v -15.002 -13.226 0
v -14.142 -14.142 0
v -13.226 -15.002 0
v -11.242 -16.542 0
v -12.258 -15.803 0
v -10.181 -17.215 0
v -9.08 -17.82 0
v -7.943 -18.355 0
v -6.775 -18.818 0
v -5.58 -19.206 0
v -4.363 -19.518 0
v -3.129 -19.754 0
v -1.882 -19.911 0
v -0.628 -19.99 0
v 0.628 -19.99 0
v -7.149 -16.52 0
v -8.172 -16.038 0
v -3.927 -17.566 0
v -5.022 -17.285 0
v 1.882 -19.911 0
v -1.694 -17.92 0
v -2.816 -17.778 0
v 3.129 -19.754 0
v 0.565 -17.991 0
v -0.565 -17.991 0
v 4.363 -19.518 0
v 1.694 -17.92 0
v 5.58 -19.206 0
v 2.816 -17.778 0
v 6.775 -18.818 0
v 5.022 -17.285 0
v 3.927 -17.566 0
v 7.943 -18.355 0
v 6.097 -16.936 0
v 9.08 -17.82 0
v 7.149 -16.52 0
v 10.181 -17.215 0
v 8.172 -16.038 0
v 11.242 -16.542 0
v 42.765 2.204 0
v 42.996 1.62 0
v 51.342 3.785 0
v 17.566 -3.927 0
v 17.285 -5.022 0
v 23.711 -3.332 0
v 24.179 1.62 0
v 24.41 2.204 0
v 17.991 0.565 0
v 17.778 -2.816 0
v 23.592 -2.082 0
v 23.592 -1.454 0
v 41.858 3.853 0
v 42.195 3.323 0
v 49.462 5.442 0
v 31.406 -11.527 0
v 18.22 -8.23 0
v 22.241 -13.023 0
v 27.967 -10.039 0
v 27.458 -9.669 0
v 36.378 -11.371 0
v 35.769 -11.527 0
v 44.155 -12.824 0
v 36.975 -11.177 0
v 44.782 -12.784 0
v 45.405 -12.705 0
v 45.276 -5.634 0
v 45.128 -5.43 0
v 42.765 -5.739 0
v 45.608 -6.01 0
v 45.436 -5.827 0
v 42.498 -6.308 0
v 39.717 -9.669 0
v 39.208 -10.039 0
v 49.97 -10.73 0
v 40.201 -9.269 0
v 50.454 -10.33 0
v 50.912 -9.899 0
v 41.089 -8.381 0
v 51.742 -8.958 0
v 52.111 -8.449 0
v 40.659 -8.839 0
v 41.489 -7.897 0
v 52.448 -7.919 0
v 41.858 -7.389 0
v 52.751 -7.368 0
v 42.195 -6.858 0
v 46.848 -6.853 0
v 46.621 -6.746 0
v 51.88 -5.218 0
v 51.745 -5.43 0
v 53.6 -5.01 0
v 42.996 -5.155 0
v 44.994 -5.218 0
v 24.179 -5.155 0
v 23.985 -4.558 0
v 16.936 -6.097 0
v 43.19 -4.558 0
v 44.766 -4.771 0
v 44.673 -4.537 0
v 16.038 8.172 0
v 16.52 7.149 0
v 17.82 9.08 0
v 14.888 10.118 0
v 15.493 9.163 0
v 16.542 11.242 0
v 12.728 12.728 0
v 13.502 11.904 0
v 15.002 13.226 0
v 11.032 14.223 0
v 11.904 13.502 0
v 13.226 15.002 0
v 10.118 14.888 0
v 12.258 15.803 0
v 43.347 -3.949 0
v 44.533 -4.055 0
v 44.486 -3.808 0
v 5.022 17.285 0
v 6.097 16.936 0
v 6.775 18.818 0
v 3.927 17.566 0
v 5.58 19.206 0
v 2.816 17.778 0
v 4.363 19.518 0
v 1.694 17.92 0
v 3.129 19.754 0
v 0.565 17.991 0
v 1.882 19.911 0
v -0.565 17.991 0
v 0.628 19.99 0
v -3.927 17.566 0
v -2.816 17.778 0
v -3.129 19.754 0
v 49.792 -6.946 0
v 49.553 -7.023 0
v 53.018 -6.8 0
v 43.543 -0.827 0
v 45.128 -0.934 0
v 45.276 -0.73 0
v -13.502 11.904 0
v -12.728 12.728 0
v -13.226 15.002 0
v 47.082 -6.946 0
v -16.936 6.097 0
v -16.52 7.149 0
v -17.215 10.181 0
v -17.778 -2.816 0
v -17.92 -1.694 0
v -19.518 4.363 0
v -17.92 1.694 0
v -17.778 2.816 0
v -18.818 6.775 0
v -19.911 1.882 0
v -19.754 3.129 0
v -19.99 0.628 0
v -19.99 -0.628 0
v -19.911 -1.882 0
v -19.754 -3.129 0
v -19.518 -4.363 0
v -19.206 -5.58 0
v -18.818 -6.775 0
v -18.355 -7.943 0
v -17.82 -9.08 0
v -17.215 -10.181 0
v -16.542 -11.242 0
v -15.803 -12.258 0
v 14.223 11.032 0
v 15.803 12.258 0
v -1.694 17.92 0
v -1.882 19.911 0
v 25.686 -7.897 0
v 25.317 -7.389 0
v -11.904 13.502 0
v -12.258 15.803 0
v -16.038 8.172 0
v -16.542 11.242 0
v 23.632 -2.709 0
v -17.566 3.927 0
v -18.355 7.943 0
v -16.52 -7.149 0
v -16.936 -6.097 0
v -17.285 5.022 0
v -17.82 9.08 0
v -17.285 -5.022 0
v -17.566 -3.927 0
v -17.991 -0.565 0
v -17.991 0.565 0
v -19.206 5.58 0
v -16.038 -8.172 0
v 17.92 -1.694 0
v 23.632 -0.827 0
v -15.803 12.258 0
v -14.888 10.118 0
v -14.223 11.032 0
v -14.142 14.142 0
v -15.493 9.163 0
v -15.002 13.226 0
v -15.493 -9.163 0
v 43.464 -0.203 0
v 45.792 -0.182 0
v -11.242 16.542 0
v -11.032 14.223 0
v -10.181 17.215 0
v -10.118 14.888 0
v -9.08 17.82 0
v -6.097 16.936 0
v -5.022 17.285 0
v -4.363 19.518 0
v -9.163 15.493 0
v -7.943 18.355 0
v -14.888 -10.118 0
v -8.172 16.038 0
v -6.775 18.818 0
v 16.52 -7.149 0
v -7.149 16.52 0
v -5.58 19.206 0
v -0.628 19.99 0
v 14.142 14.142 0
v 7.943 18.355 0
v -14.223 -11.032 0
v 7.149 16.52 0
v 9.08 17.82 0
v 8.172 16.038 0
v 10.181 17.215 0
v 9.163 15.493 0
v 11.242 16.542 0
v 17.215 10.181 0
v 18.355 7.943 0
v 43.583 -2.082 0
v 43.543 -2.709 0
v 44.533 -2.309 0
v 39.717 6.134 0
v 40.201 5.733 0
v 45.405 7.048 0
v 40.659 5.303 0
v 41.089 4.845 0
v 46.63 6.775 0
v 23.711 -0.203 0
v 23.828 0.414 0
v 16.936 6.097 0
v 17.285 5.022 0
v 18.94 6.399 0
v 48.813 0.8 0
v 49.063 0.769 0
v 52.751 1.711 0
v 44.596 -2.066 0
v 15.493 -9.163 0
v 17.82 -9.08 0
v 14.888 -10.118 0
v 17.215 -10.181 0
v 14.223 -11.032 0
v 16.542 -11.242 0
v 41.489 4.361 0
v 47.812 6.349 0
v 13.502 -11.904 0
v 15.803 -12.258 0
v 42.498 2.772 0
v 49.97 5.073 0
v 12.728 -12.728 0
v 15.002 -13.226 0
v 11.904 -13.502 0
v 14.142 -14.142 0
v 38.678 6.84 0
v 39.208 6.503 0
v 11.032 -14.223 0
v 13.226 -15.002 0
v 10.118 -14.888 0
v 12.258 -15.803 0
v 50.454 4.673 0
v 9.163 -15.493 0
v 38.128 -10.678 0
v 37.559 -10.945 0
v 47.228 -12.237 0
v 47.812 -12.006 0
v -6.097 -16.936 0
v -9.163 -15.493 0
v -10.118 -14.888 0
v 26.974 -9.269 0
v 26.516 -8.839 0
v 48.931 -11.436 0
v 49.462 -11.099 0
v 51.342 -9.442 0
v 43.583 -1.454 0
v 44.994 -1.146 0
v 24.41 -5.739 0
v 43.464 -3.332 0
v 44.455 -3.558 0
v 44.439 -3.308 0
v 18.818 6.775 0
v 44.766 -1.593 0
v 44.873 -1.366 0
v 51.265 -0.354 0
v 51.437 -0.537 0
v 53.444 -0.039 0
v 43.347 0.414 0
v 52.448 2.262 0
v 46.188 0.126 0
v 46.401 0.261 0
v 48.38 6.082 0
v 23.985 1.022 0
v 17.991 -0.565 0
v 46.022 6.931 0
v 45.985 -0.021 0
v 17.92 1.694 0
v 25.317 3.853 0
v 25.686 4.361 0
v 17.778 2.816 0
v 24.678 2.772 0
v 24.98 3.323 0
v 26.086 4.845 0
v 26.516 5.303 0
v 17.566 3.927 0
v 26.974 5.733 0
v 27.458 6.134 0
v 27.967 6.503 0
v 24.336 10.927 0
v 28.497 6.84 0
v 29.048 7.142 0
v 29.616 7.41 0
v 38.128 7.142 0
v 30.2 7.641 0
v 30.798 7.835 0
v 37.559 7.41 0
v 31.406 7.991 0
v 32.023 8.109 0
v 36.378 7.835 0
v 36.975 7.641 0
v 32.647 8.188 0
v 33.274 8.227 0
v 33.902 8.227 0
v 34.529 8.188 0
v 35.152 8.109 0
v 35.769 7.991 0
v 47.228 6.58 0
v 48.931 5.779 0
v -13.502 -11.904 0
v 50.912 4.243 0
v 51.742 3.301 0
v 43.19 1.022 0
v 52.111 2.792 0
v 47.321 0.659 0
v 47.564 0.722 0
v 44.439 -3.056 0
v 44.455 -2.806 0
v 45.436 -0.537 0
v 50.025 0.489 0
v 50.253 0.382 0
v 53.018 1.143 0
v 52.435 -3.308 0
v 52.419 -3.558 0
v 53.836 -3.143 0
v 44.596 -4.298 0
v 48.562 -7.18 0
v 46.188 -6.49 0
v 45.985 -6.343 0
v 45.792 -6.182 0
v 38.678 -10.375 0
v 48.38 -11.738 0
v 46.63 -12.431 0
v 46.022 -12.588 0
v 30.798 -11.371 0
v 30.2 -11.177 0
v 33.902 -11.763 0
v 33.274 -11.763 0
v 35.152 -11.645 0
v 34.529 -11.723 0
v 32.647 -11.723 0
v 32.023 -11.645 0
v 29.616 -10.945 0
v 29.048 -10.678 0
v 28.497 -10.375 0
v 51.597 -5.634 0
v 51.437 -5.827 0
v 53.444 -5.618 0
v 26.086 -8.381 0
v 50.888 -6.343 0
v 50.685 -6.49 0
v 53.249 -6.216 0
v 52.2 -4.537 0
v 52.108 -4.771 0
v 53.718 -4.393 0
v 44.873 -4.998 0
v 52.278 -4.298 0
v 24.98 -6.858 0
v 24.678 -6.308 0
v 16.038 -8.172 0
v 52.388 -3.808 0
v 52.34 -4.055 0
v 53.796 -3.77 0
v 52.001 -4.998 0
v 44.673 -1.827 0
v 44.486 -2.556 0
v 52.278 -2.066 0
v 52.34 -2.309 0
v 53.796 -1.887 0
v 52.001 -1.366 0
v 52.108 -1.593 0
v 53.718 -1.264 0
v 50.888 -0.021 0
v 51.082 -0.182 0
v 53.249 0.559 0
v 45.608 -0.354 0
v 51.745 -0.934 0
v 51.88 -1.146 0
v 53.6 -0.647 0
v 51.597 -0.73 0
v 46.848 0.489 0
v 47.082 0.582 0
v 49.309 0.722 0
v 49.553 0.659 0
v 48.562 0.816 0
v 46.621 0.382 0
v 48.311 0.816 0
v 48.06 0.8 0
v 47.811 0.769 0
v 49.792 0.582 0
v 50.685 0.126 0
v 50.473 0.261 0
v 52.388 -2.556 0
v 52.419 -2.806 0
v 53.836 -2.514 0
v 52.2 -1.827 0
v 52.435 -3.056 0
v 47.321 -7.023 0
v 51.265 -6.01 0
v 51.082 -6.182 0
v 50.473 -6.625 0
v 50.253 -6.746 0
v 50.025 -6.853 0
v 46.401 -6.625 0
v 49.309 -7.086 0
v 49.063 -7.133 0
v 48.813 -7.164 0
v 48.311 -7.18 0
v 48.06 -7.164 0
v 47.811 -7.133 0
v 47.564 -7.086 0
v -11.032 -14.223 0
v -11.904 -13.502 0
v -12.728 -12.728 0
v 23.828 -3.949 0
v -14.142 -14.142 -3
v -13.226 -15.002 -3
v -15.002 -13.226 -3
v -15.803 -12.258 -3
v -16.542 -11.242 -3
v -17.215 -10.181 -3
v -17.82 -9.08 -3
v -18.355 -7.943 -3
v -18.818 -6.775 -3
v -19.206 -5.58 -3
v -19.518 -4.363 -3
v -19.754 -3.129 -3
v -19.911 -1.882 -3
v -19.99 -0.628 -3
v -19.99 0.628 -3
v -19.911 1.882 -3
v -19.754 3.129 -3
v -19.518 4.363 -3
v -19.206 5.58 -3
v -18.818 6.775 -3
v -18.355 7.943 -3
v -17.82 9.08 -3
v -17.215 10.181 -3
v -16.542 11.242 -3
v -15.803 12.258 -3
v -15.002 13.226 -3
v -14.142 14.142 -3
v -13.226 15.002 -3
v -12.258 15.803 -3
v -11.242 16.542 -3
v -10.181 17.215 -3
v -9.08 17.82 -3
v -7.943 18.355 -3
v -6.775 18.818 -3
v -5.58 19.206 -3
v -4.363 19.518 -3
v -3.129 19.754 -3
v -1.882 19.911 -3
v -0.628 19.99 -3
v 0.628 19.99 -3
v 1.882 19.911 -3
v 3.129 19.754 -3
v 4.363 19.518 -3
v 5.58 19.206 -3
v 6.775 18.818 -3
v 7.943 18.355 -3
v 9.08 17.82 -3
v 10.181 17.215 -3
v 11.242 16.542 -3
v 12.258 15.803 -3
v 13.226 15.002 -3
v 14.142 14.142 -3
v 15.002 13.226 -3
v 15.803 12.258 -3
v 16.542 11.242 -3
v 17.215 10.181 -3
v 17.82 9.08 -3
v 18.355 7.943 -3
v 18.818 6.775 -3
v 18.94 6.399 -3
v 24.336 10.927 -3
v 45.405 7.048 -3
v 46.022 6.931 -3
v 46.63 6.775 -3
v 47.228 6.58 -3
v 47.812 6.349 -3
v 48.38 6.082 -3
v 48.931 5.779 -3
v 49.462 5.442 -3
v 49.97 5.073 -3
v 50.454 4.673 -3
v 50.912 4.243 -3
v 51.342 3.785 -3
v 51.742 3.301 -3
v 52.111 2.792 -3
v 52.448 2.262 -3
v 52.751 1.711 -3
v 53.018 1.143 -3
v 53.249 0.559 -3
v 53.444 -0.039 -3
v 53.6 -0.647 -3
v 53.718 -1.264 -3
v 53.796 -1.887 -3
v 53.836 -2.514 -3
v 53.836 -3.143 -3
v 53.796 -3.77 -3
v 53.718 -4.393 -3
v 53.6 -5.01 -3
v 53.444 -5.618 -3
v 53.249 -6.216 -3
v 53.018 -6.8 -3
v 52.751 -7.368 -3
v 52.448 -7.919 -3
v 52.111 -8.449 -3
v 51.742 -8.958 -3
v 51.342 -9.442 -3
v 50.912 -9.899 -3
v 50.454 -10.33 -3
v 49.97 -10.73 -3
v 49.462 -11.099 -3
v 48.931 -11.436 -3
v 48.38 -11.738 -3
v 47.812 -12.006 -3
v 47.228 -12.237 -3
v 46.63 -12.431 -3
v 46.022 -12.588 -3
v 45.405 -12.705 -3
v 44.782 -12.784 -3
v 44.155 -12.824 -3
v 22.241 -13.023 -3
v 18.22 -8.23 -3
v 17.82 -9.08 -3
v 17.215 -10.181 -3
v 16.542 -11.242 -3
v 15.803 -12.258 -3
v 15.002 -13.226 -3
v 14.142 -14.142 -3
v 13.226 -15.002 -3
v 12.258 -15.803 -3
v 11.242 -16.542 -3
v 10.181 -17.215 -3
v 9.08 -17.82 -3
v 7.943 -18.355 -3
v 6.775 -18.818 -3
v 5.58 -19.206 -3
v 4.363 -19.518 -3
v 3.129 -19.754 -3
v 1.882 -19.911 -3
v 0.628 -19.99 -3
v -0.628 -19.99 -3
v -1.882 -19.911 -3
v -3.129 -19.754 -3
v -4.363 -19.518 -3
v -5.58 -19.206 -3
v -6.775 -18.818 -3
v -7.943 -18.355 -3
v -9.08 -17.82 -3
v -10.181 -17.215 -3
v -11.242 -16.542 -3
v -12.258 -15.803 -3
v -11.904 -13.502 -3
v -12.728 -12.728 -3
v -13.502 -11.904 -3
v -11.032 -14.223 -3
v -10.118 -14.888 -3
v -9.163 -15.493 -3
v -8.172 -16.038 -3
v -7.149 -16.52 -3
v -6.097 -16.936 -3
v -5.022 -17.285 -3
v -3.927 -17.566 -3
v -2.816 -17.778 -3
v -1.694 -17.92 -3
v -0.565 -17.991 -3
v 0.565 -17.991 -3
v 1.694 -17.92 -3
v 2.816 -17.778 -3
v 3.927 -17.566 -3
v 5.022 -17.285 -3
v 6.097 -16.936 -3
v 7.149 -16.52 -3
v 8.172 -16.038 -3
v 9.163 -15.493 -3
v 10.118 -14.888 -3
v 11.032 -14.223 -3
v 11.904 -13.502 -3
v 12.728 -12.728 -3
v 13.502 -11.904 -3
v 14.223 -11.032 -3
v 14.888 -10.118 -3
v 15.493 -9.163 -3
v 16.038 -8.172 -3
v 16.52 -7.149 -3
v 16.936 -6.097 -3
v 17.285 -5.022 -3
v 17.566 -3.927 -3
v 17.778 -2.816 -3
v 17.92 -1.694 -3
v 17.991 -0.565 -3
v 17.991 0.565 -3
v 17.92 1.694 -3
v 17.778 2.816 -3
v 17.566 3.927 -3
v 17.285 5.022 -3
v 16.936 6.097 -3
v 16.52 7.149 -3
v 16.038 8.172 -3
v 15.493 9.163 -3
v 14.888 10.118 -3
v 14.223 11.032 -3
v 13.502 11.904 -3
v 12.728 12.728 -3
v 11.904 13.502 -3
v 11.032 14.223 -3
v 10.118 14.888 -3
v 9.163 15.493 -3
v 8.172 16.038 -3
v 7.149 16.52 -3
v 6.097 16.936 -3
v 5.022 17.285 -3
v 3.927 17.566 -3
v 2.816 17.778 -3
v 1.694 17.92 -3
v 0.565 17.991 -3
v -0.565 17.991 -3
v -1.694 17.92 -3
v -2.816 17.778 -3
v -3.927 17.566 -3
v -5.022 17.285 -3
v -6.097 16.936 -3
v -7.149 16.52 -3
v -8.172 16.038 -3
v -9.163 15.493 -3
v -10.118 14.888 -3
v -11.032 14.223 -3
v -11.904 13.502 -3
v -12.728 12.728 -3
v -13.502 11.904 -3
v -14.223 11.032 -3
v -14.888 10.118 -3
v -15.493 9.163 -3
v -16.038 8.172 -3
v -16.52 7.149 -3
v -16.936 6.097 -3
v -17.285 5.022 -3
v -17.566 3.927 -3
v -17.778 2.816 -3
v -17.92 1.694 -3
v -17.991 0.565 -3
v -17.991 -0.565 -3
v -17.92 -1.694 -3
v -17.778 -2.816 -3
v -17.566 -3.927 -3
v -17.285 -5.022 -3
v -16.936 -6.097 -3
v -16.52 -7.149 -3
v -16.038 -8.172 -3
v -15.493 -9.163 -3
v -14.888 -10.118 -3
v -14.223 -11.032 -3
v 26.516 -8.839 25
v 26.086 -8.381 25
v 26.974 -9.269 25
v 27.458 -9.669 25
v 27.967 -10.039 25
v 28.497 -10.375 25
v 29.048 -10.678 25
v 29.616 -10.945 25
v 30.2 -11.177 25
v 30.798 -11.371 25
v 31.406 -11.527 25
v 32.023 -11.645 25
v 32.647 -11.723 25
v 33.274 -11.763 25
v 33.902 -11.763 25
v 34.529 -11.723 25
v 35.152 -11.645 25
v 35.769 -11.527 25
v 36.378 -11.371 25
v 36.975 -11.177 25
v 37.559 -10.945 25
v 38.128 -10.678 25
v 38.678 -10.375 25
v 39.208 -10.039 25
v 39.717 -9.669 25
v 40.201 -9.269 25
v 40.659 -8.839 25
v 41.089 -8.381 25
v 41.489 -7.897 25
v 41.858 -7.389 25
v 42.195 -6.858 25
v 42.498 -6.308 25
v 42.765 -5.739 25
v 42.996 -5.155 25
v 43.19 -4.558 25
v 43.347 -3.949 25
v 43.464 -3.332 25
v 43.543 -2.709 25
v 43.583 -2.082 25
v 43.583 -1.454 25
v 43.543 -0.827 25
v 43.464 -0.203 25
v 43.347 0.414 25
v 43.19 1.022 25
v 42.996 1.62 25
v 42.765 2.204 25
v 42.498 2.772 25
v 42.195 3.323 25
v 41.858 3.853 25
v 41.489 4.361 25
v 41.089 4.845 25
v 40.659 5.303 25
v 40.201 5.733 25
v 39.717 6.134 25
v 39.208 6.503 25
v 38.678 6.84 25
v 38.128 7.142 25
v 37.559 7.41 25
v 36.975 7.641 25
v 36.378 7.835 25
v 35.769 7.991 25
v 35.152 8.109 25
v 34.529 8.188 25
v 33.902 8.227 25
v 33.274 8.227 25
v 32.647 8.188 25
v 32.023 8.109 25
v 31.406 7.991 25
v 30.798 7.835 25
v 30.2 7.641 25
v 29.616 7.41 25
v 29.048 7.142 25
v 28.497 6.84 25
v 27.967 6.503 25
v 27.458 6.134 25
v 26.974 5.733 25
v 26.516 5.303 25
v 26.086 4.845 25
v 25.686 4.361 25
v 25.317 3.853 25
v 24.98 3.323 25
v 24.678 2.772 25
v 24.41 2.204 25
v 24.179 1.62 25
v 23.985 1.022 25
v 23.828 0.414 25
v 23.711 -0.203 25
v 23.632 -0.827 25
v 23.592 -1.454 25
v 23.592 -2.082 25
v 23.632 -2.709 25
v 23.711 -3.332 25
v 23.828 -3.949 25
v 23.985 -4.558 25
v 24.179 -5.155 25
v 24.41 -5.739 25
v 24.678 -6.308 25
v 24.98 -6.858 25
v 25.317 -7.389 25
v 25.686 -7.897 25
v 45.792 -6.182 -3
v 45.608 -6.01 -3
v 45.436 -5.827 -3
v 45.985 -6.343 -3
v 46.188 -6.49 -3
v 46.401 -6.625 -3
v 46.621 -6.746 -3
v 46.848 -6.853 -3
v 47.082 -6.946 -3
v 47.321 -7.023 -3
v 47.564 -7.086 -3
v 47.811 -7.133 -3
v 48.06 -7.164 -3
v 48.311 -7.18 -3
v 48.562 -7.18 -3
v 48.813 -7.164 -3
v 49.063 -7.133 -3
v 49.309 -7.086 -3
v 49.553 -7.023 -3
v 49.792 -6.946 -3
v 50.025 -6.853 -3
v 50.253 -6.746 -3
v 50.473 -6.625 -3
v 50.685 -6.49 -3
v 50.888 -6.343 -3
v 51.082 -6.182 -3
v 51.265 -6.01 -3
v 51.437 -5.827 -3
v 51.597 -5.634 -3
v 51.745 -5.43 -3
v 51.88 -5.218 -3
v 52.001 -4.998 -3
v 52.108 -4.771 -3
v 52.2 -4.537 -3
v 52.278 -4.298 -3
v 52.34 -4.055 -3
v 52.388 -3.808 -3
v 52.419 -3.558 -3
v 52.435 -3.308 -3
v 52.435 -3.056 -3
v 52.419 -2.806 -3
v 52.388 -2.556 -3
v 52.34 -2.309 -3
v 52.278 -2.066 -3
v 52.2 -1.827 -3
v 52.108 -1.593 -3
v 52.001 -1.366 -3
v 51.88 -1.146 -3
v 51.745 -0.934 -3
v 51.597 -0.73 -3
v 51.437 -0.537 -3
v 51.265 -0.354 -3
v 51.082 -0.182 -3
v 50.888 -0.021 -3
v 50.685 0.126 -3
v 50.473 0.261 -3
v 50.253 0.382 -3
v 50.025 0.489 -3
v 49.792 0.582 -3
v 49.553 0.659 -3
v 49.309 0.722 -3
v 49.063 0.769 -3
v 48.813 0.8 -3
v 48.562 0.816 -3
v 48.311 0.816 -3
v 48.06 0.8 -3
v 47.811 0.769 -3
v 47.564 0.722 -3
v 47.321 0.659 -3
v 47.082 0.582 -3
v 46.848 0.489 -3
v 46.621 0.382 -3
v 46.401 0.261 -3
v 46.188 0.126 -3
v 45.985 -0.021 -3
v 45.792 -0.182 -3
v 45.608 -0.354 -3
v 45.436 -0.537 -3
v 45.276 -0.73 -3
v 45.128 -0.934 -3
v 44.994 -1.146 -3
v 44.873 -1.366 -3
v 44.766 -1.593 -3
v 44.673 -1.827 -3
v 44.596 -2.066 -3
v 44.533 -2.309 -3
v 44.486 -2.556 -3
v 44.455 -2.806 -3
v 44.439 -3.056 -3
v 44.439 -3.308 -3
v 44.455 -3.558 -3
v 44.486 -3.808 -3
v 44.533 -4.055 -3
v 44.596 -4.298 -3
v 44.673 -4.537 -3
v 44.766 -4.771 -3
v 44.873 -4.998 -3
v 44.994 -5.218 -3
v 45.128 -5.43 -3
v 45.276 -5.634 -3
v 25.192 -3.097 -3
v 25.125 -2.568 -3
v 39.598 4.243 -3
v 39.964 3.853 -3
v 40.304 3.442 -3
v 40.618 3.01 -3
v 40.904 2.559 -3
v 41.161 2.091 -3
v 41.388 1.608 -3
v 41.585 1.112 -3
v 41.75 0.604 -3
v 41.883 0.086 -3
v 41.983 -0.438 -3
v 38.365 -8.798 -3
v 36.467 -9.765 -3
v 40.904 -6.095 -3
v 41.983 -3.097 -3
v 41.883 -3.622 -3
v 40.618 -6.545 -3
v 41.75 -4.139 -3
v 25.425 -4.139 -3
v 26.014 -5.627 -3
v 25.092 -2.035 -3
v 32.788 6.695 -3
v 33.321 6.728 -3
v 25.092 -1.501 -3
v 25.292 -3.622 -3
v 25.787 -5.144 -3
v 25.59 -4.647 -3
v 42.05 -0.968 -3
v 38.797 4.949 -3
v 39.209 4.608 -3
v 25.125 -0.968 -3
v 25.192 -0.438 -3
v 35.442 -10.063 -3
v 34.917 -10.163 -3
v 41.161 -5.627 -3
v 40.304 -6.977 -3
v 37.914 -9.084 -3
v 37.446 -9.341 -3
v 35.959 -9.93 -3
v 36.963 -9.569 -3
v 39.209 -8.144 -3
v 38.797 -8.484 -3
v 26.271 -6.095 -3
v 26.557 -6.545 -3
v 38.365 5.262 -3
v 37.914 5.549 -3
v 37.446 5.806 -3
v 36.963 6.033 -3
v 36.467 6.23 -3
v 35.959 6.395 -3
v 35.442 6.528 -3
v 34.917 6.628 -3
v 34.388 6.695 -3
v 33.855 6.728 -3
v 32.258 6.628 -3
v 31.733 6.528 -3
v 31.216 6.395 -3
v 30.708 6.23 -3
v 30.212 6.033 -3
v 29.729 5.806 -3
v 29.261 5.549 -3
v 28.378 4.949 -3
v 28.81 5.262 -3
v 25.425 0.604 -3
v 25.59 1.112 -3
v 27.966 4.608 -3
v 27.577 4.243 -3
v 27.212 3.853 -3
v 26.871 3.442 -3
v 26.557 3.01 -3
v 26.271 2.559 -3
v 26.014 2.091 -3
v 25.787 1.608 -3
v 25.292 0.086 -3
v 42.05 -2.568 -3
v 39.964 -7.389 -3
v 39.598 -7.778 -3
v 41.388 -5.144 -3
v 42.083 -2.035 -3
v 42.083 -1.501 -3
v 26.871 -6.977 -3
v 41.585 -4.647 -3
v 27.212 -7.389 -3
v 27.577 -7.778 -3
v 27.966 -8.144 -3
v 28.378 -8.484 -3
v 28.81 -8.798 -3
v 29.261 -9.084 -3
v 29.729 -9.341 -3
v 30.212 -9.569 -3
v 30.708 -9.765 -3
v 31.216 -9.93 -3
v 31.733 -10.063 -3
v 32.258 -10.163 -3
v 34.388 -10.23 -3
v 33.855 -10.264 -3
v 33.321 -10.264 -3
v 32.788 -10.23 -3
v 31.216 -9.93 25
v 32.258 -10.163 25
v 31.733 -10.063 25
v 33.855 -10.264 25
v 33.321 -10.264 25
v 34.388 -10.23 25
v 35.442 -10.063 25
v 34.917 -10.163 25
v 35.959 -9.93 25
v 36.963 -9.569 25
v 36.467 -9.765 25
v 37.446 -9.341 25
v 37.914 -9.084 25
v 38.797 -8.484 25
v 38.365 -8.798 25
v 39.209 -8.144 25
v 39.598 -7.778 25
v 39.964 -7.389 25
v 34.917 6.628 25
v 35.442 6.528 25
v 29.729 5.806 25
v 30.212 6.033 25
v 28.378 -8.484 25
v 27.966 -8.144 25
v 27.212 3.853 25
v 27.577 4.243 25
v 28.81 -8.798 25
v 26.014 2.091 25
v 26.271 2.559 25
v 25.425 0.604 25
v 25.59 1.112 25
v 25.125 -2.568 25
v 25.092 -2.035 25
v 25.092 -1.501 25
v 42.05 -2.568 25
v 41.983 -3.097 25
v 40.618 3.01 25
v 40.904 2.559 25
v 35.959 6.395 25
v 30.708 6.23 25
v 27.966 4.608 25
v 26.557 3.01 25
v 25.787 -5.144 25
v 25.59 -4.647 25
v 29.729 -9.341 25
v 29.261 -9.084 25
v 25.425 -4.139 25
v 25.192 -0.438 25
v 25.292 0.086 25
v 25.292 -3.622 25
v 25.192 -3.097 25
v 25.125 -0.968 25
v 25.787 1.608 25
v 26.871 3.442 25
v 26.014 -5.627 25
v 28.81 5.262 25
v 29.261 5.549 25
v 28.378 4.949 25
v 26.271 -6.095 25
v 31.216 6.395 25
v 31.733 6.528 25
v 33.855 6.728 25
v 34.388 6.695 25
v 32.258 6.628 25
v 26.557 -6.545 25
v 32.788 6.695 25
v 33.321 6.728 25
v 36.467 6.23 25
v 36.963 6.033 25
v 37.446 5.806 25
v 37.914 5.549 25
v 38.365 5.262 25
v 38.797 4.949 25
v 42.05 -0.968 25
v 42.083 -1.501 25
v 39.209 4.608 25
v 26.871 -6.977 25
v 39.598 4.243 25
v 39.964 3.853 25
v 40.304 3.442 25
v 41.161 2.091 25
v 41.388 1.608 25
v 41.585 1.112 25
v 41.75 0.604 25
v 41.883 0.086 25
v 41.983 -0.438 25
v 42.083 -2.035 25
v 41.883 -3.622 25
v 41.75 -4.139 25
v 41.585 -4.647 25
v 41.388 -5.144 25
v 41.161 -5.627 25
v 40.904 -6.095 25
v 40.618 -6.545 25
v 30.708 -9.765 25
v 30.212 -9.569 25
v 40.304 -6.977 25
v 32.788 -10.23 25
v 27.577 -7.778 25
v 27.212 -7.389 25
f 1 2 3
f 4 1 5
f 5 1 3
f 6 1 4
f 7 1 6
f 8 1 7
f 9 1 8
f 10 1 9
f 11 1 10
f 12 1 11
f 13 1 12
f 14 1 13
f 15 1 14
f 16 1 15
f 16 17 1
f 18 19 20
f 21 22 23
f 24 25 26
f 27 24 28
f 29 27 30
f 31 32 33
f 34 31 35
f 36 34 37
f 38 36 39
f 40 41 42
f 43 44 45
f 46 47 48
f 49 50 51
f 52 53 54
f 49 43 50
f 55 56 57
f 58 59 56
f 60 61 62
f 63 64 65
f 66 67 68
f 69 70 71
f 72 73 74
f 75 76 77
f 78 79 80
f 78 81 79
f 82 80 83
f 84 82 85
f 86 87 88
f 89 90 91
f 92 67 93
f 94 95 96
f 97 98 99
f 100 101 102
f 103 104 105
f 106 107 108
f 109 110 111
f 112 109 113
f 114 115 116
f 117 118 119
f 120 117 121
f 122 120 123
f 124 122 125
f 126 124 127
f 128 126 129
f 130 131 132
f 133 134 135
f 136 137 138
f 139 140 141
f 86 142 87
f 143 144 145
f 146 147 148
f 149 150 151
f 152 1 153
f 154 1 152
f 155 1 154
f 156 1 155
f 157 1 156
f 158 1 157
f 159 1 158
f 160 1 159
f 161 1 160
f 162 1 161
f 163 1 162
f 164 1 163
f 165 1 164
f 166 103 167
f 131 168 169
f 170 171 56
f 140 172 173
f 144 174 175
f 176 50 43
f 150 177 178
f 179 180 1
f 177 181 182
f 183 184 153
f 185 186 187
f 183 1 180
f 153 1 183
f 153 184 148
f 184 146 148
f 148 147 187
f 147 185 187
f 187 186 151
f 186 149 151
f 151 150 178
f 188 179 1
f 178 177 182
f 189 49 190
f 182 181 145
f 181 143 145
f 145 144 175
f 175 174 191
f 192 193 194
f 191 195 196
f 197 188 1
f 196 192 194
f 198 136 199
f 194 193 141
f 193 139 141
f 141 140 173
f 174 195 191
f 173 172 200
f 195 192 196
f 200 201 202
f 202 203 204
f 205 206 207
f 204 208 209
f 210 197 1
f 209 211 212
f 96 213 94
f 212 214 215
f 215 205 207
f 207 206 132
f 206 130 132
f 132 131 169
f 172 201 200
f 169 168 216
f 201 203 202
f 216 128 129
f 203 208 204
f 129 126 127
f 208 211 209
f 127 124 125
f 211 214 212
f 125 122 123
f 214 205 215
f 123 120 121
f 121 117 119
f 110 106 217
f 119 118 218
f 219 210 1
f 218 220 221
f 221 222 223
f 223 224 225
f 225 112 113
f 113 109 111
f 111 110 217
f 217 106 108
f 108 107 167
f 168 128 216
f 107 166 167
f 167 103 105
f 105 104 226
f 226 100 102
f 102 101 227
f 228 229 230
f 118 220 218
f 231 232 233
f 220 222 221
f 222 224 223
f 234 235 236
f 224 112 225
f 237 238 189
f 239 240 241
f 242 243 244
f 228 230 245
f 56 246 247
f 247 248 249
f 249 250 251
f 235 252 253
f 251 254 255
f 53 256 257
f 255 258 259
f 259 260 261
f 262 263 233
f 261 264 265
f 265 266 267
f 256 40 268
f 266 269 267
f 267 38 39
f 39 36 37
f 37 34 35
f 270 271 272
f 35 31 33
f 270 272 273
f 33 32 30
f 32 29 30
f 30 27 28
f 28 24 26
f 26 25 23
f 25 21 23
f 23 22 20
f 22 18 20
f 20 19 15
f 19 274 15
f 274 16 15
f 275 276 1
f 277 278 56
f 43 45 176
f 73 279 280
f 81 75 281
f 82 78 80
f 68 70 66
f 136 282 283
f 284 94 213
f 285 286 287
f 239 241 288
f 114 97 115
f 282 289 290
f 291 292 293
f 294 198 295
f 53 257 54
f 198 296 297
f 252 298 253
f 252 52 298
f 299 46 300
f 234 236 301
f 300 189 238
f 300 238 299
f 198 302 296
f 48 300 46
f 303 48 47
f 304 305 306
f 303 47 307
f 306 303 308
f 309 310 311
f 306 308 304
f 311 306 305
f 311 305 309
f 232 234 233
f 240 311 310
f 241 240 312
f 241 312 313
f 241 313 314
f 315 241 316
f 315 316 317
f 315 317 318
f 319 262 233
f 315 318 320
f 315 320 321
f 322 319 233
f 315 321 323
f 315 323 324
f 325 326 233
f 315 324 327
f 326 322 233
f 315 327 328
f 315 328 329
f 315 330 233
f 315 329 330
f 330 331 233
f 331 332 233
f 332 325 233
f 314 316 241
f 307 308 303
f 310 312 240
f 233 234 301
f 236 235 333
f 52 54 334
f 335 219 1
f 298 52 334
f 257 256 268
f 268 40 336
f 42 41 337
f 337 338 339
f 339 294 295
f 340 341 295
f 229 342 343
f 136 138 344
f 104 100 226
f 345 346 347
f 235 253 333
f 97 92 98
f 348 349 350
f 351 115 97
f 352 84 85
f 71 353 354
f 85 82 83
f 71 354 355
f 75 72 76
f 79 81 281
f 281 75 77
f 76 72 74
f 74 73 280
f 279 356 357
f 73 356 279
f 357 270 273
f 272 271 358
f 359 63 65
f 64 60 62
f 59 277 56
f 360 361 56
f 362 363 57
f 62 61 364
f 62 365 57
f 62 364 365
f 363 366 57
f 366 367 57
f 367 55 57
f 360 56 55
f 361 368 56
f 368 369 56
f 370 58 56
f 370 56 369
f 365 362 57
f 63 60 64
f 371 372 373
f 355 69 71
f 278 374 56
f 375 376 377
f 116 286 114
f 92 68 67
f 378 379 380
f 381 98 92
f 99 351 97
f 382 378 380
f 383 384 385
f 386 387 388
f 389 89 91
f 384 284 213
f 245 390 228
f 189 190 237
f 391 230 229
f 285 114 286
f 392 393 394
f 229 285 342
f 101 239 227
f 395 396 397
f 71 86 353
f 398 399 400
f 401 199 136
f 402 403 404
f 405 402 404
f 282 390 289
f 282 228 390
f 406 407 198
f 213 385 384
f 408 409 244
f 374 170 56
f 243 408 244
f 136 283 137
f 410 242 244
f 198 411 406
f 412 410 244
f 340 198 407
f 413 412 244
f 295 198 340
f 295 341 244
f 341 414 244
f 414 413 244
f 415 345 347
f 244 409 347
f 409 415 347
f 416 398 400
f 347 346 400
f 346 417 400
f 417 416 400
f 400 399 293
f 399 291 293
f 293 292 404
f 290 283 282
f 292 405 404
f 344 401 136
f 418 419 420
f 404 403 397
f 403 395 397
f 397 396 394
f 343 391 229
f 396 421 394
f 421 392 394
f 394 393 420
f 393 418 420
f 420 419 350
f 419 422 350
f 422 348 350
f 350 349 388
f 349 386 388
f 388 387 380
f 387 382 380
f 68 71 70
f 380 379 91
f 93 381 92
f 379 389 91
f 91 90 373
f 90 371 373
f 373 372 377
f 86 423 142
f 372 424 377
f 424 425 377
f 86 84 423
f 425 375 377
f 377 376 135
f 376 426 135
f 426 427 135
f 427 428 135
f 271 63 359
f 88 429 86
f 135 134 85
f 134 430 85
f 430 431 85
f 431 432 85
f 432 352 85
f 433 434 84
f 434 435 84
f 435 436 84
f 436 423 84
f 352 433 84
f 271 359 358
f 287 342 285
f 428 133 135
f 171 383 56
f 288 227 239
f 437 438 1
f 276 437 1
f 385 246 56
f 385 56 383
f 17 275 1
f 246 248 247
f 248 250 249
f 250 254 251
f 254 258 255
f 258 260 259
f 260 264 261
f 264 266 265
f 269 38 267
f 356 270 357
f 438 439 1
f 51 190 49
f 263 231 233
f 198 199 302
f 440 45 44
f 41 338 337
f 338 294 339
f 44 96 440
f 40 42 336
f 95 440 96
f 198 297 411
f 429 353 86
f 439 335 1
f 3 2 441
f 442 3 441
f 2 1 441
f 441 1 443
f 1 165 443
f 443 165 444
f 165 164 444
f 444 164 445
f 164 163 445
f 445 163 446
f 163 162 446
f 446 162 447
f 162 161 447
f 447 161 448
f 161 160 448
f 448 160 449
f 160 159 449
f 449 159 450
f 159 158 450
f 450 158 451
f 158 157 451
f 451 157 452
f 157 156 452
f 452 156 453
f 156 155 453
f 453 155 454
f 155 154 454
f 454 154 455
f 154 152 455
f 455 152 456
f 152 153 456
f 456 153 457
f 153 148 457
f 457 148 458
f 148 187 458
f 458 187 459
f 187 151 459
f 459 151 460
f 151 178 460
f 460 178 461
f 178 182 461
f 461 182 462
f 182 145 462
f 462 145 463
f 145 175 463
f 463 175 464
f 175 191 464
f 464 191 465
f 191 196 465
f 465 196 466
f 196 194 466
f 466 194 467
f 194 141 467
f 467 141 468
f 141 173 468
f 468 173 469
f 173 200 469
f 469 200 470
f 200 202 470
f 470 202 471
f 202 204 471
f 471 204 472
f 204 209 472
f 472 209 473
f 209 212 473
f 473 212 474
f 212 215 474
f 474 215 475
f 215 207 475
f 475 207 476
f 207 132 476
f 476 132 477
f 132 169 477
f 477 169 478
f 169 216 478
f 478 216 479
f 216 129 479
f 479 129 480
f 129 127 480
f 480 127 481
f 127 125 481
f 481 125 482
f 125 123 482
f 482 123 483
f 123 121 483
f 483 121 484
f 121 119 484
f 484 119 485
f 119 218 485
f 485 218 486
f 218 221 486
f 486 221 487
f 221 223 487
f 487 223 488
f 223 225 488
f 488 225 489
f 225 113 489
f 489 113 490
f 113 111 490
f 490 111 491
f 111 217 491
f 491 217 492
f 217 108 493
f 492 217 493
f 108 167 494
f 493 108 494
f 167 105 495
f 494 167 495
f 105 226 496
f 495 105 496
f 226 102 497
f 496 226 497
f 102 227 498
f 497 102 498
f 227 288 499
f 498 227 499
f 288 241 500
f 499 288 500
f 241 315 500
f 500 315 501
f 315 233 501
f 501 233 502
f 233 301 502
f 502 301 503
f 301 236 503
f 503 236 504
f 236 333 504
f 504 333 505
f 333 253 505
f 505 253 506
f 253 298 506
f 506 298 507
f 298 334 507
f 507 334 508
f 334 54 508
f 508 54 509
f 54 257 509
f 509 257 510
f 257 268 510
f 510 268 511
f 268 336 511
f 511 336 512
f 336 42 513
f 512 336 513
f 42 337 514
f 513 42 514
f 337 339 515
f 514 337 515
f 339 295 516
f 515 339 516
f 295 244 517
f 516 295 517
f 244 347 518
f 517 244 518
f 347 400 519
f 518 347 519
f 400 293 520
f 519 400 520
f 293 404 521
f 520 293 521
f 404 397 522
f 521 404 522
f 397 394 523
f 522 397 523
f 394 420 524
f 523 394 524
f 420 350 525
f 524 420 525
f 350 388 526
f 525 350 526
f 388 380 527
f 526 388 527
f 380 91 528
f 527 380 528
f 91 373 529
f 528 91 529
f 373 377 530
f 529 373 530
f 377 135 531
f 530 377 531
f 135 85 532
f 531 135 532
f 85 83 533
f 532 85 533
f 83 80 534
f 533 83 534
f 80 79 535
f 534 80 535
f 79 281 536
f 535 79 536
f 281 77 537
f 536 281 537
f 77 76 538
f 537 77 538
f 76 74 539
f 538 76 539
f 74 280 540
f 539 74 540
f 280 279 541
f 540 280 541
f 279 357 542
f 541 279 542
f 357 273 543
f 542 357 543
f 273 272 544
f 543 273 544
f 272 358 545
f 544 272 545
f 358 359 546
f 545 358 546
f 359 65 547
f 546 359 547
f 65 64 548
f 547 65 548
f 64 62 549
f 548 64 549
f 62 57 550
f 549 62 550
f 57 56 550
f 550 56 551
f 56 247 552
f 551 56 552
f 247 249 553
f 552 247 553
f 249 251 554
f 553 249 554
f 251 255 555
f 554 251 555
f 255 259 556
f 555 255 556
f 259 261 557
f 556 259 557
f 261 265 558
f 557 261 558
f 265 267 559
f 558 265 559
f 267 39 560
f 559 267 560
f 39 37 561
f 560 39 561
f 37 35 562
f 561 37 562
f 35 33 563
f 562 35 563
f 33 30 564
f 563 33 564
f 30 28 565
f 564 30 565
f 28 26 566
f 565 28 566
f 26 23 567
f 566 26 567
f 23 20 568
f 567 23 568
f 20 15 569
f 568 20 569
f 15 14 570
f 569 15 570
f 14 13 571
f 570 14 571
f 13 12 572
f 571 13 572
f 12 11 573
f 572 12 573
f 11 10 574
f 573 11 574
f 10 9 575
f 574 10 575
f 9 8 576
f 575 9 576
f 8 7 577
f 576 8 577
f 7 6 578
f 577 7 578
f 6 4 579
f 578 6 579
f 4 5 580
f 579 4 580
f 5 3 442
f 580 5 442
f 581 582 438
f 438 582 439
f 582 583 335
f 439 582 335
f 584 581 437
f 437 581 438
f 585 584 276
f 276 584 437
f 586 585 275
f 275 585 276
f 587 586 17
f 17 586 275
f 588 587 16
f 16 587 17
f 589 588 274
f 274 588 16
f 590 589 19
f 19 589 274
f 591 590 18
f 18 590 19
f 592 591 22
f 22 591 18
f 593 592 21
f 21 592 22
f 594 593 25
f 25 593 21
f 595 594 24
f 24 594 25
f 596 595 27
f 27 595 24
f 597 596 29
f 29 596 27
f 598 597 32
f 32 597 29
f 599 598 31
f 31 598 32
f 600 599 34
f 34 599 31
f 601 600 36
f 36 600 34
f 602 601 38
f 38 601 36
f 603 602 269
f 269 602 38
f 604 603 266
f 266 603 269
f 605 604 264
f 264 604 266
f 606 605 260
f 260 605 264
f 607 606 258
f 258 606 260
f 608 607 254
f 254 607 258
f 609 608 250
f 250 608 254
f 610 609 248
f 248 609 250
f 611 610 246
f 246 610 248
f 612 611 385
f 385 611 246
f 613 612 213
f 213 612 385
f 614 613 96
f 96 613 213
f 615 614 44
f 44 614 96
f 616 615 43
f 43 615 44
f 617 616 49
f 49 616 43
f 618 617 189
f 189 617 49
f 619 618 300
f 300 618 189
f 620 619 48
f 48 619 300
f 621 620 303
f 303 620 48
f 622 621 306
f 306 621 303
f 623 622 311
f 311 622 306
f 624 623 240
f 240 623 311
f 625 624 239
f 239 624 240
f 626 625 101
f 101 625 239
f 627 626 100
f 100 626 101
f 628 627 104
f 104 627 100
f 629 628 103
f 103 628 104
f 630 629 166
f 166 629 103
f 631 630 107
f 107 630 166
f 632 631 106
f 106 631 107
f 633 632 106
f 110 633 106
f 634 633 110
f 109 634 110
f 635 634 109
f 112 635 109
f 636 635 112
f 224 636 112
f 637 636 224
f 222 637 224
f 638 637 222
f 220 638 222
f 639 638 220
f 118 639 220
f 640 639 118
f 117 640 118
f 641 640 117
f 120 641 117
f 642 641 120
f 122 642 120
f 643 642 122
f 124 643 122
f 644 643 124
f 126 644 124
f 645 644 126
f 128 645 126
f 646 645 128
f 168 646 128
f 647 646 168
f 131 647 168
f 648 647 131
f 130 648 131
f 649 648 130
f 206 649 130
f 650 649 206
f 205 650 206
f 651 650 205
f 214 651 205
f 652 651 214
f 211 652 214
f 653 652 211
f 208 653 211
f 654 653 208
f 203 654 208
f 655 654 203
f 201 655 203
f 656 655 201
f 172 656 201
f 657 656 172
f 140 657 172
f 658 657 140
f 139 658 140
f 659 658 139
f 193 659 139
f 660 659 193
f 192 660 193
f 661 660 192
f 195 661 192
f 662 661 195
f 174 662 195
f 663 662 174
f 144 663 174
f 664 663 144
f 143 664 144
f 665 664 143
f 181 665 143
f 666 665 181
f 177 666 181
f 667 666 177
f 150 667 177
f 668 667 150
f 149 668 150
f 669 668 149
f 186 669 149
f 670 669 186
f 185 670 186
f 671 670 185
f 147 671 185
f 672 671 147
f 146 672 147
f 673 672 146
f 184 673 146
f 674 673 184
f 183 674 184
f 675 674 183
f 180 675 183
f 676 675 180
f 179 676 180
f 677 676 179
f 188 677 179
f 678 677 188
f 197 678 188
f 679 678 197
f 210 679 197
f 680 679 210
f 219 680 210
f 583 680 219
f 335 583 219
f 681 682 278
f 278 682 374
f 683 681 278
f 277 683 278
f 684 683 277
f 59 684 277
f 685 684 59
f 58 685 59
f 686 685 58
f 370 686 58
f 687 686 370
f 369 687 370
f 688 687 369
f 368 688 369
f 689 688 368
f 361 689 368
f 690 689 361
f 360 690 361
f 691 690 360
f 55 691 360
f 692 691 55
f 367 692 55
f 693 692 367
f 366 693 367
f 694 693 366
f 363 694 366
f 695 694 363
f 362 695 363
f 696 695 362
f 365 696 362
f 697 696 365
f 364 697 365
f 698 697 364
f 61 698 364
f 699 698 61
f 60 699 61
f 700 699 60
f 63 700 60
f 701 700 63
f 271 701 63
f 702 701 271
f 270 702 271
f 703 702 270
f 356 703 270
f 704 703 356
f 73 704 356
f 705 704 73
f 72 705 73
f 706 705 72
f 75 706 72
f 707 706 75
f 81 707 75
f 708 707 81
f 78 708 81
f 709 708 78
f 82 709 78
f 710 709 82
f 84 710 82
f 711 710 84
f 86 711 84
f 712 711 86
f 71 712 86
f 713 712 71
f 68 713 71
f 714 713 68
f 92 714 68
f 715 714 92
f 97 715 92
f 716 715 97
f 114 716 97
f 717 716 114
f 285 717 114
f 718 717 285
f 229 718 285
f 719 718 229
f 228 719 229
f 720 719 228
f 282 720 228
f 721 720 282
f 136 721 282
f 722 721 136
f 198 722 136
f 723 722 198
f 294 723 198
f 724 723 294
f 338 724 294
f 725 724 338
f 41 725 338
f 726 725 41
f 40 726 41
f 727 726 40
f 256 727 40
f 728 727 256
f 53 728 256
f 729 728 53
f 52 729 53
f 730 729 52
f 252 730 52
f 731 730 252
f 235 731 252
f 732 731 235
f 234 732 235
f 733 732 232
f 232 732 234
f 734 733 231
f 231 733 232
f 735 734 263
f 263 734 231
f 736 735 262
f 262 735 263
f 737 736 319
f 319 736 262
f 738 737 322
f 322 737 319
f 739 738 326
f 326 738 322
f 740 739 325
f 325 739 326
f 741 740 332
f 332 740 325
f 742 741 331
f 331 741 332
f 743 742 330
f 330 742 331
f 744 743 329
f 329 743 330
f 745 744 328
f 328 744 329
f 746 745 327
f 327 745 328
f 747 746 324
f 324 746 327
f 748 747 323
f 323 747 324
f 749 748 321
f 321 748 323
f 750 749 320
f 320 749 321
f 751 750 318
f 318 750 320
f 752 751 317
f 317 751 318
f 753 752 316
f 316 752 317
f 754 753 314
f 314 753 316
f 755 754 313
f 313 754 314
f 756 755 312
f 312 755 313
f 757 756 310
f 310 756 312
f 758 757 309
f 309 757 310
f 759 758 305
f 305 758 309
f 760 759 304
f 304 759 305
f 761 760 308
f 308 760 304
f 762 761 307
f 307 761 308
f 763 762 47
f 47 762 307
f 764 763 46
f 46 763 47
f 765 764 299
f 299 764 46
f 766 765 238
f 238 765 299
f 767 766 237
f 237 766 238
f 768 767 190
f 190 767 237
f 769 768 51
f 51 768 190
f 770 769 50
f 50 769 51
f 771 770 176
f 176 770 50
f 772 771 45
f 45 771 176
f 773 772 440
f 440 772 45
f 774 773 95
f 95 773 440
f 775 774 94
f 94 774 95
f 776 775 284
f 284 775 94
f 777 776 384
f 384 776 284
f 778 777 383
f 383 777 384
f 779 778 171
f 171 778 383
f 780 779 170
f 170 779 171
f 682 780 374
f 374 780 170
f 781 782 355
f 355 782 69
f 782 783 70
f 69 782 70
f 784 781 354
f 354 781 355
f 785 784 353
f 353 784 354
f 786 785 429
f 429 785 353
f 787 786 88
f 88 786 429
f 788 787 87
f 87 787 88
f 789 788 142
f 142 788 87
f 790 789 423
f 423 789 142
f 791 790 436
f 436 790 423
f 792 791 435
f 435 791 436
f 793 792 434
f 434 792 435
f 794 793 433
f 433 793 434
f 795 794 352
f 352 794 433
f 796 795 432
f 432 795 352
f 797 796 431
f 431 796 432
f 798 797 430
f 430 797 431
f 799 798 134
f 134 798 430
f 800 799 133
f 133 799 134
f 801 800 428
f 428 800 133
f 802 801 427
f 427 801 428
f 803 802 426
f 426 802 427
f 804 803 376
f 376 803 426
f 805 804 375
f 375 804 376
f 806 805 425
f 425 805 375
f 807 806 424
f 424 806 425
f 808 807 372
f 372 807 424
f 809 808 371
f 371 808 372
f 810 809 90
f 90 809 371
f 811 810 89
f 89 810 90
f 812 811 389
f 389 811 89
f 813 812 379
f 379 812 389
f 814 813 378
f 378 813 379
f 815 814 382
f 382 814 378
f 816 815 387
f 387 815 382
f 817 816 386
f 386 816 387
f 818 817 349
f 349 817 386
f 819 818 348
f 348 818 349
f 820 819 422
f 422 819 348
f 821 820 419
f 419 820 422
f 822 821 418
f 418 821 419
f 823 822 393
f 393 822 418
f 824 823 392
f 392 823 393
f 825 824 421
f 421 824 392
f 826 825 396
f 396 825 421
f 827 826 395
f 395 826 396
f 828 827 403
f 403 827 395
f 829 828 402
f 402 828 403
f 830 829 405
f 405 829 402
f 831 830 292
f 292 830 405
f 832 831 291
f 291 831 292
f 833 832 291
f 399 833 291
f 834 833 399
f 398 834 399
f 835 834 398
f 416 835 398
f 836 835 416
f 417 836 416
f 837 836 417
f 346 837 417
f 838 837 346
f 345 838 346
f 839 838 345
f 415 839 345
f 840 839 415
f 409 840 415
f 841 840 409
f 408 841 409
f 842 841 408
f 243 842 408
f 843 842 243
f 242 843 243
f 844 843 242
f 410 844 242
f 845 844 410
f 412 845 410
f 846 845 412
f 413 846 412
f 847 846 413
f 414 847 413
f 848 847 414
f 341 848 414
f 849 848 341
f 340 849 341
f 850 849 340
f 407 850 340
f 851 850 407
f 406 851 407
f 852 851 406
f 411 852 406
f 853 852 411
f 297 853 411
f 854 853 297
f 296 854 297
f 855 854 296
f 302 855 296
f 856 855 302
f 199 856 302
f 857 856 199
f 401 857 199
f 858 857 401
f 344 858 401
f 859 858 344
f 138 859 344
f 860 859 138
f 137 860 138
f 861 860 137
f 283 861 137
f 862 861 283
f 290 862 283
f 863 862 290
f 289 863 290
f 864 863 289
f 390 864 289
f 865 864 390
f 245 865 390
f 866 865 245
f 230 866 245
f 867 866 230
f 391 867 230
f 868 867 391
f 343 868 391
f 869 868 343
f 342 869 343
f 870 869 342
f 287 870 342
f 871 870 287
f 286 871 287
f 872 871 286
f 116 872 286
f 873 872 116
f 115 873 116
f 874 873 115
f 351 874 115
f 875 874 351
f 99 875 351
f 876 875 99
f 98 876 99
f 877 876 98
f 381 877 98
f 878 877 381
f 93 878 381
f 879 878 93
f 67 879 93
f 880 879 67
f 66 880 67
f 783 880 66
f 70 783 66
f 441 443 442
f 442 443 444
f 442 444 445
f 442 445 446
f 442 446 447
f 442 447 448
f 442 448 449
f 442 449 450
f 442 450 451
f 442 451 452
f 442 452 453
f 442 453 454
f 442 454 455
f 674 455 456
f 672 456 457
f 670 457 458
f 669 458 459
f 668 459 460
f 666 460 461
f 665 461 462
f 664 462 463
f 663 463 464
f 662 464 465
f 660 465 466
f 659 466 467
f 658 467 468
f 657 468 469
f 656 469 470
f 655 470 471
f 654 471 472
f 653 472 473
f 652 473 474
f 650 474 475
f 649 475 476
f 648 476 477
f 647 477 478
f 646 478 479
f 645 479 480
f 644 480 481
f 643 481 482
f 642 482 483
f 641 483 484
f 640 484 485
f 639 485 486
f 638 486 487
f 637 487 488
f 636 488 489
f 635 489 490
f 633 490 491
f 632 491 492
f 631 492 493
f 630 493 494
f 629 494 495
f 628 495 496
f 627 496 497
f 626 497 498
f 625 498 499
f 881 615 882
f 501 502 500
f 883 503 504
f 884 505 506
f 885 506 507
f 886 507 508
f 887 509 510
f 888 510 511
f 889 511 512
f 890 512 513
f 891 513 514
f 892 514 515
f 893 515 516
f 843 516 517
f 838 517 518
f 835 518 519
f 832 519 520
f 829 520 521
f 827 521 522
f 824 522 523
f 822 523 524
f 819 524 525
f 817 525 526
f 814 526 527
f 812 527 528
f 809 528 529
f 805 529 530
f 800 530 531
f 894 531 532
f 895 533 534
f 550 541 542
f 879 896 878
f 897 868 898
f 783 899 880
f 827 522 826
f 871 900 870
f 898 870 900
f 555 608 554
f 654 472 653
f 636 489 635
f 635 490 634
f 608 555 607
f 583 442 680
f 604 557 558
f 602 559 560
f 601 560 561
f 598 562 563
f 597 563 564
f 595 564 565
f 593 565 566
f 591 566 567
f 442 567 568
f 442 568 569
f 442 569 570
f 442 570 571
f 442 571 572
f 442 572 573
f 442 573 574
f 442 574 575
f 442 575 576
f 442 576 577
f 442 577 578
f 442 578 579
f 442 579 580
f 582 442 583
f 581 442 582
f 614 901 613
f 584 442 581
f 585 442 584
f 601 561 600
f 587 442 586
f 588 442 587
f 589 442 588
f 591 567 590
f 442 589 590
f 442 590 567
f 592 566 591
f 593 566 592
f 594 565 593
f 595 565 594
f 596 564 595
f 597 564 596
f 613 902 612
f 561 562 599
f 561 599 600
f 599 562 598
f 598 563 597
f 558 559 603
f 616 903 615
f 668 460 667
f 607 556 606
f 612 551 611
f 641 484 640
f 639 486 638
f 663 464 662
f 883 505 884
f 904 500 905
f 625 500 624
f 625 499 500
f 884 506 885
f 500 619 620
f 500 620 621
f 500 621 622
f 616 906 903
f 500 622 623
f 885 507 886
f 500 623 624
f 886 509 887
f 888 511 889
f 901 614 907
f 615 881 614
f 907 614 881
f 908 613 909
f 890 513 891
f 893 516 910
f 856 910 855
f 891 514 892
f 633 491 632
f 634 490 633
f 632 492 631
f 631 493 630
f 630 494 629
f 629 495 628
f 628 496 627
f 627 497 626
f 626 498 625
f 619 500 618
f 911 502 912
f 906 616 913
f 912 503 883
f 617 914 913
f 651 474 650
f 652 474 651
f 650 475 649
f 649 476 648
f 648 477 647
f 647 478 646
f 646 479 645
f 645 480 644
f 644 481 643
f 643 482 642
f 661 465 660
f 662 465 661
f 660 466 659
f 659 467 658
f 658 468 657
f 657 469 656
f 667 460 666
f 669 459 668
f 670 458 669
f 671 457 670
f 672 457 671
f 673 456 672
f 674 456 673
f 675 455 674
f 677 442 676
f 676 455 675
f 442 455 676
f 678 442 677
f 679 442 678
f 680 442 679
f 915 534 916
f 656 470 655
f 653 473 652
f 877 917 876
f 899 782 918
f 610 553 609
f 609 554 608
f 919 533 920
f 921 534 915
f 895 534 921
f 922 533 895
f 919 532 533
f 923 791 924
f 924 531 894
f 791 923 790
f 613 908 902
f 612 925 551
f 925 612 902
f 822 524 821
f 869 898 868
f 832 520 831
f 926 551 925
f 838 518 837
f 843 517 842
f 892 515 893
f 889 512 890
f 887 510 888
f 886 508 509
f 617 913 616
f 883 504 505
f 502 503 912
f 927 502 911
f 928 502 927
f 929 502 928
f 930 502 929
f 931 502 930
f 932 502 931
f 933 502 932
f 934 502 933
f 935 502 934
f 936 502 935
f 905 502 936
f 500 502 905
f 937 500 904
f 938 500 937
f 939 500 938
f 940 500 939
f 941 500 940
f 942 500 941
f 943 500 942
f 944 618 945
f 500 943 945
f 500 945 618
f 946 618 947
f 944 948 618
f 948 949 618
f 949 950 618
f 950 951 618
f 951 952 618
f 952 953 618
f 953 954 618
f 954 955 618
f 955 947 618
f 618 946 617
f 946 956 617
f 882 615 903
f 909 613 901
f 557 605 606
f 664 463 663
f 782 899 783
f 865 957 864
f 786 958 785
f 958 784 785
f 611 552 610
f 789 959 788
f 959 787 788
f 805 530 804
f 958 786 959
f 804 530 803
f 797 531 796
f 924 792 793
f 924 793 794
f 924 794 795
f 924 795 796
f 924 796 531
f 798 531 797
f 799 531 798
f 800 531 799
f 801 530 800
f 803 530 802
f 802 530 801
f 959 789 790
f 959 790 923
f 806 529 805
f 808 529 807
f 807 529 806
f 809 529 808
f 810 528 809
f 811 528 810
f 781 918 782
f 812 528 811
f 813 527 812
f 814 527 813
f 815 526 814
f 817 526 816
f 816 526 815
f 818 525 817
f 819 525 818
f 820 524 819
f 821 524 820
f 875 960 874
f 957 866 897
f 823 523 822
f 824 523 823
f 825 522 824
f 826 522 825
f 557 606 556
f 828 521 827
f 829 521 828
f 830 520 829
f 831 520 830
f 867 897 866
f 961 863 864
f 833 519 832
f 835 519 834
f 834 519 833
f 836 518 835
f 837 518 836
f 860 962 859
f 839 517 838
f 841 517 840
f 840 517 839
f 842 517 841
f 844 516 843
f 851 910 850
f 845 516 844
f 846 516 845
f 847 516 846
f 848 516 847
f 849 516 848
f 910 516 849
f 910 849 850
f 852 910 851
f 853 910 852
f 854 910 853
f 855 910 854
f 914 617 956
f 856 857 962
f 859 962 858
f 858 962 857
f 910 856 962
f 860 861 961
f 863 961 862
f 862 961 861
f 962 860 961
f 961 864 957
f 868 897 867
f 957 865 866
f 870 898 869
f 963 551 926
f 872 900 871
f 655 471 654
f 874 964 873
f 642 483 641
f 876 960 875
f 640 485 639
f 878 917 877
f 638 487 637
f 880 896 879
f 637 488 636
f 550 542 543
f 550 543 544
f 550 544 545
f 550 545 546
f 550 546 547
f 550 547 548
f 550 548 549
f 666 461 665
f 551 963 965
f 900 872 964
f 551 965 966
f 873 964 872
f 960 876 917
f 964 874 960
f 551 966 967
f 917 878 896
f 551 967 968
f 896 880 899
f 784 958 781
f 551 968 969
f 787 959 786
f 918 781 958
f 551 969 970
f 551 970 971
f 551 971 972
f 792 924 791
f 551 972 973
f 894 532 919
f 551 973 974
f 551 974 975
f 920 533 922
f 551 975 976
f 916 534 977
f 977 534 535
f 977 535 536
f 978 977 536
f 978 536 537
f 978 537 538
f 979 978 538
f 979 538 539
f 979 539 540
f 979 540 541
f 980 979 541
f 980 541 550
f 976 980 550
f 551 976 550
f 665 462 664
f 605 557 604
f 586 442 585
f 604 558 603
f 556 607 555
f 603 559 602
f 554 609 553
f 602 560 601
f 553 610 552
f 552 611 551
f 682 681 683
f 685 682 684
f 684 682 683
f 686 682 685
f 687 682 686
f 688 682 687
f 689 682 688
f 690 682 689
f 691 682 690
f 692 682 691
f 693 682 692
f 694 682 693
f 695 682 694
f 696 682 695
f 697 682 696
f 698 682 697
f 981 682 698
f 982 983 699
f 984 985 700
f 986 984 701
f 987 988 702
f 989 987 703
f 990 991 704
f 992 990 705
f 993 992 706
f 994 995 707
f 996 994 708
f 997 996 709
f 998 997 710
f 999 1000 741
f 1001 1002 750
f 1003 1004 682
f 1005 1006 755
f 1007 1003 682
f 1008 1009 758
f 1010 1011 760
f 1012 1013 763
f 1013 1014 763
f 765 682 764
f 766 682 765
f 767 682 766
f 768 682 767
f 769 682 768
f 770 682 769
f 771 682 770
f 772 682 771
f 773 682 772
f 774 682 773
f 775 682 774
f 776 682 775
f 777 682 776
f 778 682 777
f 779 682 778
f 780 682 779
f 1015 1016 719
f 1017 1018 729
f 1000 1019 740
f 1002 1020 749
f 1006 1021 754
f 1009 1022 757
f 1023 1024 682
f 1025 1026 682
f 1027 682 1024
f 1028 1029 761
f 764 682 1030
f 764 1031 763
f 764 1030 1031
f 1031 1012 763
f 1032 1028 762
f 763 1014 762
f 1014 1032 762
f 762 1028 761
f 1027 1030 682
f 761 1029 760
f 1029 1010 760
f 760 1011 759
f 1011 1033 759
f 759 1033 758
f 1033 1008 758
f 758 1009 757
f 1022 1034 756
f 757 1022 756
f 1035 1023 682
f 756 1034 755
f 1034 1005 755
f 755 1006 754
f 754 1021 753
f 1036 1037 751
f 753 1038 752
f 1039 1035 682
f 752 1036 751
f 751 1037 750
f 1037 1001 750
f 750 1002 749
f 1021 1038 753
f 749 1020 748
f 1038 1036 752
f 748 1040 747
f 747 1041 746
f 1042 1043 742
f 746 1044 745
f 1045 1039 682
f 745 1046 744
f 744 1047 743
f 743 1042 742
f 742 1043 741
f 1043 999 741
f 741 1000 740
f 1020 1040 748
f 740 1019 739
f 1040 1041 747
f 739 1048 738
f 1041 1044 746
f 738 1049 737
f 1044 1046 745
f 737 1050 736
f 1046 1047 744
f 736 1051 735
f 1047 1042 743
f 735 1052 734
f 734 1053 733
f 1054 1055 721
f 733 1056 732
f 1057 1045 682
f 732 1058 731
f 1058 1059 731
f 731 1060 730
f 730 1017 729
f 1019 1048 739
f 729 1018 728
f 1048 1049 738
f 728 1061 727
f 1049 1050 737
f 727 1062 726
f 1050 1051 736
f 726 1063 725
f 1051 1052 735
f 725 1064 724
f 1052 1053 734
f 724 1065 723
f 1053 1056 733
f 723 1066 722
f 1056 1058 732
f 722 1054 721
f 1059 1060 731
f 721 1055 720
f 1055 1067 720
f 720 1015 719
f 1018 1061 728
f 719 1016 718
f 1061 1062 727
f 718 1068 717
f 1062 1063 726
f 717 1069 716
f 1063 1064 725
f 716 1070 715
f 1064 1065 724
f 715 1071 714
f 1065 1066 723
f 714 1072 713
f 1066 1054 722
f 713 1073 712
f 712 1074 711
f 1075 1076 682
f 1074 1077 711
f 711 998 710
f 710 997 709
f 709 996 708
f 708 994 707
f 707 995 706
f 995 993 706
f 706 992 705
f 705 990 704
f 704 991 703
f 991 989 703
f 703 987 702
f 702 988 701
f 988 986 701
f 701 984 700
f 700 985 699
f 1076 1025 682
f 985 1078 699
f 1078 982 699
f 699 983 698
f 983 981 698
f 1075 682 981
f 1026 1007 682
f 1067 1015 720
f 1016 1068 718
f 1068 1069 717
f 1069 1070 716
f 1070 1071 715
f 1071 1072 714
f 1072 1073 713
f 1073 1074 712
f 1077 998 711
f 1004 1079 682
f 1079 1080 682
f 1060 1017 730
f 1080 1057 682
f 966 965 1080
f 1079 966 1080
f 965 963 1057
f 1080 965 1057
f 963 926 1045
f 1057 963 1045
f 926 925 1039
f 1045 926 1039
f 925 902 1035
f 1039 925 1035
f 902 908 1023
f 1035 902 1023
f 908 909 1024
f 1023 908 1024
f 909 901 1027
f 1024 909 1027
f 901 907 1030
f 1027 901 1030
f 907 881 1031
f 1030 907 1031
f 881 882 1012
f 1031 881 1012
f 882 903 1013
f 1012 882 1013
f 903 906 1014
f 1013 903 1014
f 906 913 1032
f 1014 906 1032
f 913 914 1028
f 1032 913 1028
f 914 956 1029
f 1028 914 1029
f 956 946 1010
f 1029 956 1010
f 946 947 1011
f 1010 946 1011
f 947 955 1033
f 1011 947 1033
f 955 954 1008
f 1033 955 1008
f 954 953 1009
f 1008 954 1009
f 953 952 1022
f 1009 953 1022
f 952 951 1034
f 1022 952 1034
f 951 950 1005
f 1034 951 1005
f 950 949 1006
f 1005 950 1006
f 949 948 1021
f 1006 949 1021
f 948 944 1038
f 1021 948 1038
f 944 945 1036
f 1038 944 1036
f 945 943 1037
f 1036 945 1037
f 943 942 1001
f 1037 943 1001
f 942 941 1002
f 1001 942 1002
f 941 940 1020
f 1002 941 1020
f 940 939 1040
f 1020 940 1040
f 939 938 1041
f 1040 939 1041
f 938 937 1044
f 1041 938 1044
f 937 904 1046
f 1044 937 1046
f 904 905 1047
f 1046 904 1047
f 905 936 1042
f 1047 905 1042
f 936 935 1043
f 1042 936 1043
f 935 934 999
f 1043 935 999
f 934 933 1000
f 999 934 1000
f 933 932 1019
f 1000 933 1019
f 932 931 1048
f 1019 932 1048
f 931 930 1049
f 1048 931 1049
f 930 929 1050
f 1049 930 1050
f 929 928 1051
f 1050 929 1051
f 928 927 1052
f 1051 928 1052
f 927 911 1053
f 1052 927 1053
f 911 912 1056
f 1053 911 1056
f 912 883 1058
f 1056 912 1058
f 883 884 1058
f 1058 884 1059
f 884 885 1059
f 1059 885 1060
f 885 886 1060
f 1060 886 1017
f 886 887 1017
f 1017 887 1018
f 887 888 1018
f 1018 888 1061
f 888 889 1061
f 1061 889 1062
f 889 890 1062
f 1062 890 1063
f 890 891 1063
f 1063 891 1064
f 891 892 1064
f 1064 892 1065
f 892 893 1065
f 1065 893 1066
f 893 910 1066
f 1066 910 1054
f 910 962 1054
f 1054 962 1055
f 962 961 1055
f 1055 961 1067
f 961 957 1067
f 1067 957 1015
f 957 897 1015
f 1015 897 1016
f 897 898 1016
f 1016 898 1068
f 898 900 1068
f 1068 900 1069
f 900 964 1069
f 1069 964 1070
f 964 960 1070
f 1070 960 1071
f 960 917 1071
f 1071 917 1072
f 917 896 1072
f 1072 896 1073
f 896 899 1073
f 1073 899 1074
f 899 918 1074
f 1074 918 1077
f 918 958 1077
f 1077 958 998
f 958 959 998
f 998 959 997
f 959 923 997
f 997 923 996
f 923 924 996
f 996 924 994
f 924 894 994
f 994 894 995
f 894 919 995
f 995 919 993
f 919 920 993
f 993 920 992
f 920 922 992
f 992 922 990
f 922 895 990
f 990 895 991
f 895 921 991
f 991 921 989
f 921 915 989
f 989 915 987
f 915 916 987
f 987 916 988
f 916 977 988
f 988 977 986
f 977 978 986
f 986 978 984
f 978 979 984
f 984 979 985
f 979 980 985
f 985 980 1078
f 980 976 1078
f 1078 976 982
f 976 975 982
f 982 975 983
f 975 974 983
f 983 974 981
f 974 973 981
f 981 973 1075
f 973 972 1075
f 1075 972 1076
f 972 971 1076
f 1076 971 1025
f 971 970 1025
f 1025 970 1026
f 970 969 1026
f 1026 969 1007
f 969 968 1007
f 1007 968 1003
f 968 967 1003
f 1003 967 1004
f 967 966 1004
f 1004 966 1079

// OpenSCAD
$fn=100;
// Flip entire object for printing (bottom->up)
rotate(a=[0,180,225]) {
	// Extruded cylinder for brush handle
	difference() {
		union() {
			translate([22.5,25,-25]) cylinder(r=10,h=25);
			// Ring and hole
			difference() { 
				union() {
					cylinder(h=3, r=20.0);
					difference() {
						hull() {
							translate([8,8,0]) rotate(5,0,0) cube(size=[17,17,3], center=false);
							translate([29,33,0]) cylinder(r=10,h=3);
						}
						translate([32,36.5,0]) #cylinder(r=4,h=3);
					}
				}
				// Hole creator
			  	cylinder(h=4.00, r=18.0);
			}
		}
		translate([22.5,25,-25]) #cylinder(r=8.5, h=32);
	}
}
